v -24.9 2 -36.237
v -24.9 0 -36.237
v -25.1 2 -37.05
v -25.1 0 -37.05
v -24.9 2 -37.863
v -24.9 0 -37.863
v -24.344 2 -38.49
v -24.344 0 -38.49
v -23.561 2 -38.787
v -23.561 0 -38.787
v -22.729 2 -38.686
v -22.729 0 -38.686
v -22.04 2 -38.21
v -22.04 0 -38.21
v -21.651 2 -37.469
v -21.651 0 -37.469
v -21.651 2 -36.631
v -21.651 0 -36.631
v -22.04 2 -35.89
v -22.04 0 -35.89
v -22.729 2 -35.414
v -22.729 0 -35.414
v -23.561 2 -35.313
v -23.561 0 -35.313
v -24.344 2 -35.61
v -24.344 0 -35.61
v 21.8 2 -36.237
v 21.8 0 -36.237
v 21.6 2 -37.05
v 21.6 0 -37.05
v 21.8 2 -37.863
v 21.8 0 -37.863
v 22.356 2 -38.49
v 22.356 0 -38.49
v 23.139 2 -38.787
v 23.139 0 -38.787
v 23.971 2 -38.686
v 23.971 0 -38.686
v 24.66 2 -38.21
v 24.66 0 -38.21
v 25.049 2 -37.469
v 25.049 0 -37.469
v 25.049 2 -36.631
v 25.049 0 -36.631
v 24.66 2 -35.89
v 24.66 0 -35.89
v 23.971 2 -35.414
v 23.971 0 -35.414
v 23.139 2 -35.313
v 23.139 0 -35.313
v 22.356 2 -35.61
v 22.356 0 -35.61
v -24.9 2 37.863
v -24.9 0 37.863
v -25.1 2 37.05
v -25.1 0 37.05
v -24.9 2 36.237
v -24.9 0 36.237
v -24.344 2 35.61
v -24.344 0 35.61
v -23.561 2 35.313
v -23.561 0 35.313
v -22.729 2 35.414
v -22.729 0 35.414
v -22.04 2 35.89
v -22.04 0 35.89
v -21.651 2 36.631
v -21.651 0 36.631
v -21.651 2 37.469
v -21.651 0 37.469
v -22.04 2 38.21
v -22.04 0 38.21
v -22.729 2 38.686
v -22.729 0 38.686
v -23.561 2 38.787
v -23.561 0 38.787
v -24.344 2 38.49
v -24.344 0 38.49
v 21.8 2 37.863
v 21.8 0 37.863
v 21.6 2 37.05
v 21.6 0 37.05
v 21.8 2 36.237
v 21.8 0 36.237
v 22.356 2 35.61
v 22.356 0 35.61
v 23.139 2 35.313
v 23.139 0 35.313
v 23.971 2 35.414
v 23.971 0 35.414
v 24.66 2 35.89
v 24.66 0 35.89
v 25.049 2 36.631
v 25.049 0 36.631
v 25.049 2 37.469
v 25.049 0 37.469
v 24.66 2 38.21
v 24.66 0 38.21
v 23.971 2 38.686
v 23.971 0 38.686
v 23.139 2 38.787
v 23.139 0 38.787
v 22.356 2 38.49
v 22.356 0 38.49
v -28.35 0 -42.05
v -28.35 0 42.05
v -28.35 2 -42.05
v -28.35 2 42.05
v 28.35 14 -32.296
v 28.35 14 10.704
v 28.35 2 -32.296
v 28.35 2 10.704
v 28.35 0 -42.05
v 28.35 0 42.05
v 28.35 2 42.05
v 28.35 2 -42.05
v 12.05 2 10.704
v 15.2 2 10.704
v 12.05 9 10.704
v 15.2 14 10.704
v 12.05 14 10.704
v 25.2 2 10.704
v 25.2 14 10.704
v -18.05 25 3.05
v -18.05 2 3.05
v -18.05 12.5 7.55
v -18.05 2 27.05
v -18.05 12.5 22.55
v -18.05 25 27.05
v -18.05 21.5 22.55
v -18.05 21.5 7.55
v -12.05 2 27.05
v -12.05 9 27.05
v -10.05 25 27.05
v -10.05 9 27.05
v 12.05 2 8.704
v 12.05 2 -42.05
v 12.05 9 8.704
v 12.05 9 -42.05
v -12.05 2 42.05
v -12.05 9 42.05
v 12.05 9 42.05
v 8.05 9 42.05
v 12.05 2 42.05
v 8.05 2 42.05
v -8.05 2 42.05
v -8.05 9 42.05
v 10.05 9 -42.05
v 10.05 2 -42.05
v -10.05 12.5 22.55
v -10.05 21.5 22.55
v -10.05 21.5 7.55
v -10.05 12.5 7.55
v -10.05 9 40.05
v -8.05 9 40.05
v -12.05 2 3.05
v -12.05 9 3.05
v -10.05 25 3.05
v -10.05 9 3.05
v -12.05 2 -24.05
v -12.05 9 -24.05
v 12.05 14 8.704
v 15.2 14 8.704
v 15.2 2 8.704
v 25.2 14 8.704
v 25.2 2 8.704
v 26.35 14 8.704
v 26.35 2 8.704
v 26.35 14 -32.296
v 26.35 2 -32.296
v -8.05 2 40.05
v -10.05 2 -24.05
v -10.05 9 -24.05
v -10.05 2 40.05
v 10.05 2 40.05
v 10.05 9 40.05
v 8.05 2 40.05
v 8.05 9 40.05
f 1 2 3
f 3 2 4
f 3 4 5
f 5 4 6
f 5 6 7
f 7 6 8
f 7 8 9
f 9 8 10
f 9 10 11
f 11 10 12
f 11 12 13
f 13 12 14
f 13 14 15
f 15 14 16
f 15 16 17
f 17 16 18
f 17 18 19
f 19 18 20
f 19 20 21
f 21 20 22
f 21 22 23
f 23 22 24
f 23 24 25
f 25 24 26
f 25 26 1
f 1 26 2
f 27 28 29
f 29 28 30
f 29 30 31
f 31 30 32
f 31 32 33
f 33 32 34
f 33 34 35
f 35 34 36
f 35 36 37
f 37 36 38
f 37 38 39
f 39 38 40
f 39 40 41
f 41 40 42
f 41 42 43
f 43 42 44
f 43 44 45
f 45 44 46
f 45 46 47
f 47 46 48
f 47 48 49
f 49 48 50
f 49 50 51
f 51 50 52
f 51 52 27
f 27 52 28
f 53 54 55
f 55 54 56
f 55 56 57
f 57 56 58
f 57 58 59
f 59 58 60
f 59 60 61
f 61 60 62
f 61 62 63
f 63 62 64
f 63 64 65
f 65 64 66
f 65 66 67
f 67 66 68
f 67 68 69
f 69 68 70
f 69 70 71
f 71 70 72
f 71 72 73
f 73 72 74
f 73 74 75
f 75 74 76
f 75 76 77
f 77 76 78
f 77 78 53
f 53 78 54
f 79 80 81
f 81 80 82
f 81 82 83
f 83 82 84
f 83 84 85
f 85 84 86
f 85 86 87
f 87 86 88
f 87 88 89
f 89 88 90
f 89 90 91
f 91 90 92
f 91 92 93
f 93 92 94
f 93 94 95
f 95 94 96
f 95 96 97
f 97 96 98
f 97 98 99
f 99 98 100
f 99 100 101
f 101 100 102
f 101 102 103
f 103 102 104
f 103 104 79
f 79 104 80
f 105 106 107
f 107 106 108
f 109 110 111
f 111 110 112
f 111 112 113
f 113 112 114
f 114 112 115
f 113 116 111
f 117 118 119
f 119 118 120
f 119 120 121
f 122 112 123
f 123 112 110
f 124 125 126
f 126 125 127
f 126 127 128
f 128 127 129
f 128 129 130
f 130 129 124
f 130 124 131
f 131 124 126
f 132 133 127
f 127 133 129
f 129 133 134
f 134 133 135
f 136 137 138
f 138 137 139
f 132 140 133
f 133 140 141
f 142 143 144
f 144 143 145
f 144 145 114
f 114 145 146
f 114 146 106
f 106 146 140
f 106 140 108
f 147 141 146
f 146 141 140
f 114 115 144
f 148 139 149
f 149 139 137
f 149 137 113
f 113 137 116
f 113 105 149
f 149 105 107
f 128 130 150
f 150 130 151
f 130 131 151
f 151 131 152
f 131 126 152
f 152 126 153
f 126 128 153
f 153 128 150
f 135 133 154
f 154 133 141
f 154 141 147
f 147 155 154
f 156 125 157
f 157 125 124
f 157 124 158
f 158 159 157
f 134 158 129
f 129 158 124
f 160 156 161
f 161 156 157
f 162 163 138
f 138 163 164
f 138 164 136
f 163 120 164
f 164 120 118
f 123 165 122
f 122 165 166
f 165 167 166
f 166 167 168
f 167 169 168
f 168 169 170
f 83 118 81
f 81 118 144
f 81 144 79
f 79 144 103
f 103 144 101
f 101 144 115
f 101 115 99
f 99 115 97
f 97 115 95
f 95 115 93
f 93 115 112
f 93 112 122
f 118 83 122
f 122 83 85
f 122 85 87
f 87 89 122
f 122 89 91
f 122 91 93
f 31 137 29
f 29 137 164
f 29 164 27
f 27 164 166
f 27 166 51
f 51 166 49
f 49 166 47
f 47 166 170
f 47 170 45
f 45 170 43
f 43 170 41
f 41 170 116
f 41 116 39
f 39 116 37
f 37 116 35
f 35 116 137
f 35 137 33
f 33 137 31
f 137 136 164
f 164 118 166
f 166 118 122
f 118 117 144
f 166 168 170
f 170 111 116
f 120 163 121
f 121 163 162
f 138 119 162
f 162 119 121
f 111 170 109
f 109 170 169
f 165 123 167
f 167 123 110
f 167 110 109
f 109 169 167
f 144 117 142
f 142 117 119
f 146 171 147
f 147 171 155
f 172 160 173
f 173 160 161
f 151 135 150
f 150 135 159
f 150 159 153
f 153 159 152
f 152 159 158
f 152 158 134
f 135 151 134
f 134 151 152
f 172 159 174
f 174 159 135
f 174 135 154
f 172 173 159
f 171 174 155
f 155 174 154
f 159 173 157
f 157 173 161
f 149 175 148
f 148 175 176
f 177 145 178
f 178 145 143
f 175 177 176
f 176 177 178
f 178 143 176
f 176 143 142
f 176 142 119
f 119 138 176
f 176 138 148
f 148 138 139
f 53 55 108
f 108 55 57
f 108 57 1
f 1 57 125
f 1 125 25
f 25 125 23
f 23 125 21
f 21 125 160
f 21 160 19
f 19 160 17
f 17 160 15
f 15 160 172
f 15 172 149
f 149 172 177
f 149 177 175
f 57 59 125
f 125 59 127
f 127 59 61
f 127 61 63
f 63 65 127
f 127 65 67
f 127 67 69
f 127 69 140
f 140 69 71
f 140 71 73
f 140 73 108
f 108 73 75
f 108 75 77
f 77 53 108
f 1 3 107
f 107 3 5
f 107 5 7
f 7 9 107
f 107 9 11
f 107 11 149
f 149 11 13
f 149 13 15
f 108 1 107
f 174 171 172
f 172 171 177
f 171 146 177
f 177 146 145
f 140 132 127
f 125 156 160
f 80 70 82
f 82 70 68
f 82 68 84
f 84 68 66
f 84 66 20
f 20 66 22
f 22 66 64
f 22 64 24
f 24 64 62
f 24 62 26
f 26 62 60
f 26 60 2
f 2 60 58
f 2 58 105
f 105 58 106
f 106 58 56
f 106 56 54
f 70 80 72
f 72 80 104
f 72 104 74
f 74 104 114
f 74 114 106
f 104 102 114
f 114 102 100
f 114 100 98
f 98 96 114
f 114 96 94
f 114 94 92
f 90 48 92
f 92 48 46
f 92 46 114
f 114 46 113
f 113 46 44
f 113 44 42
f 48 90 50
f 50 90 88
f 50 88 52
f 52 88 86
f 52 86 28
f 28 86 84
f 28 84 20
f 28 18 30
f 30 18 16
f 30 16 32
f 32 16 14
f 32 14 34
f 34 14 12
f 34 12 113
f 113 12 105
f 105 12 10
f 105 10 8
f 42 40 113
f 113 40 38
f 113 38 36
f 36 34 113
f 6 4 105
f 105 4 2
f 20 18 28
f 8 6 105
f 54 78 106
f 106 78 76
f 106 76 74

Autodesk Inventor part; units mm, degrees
ref_plane "YZ Plane" through (0, 0, 0) normal (1, 0, 0) x (0, 1, 0)
ref_plane "XZ Plane" through (0, 0, 0) normal (0, 1, 0) x (-1, 0, 0)
ref_plane "XY Plane" through (0, 0, 0) normal (0, 0, 1) x (1, 0, 0)
sketch "Boceto1" plane through (0, 0, 0) normal (0, 1, 0) x (-1, 0, 0)
  line L0 (10.05, 40.05) -> (-10.05, 40.05)
  line L1 (-10.05, 40.05) -> (-10.05, -40.05)
  line L2 (-10.05, -40.05) -> (10.05, -40.05)
  line L3 (10.05, -40.05) -> (10.05, 40.05)
  line L4 (10.05, 40.05) -> (-10.05, -40.05) construction
  line L5 (-10.05, 40.05) -> (10.05, -40.05) construction
  line L6 (12.05, 42.05) -> (-12.05, 42.05)
  line L7 (-12.05, 42.05) -> (-12.05, -42.05)
  line L8 (-12.05, -42.05) -> (12.05, -42.05)
  line L9 (12.05, -42.05) -> (12.05, 42.05)
  point P0 (0, 0)
  dimension "d0" = 20.1
  dimension "d1" = 80.1
  dimension "d2" = 2
extrude "Extrusión1" add sketch "Boceto1" along normal blind 2 contours L3 L2 L1 L0 | L9 L8 L7 L6
sketch "Boceto2" plane through (0, 2, 0) normal (0, 1, 0) x (1, 0, 0)
  line L0 (12.05, -42.05) -> (12.05, 42.05) projected
  line L1 (-12.05, -42.05) -> (12.05, -42.05)
  line L2 (12.05, -42.05) -> (12.05, 42.05)
  line L3 (-12.05, 42.05) -> (-12.05, -42.05)
  line L4 (-12.05, -42.05) -> (12.05, 42.05) construction
  line L5 (12.05, -42.05) -> (-12.05, 42.05) construction
  line L6 (-10.05, -40.05) -> (10.05, -40.05)
  line L7 (10.05, -40.05) -> (10.05, 40.15)
  line L8 (-10.05, 40.05) -> (-10.05, -40.05)
  line L9 (-10.05, 40.05) -> (-10.05, 42.05)
  line L10 (10.05, 40.15) -> (10.05, 42.05)
  line L11 (12.05, 42.05) -> (-12.05, 42.05) projected
  line L12 (12.05, 42.05) -> (10.05, 42.05)
  line L13 (-12.05, 42.05) -> (-10.05, 42.05)
  line L14 (-12.05, 42.05) -> (-12.05, -42.05) projected
  line L15 (-12.05, 24.05) -> (-10.05, 24.05)
  line L16 (-12.05, -27.6873) -> (-10.05, -27.6873)
  line L17 (-10.05, -27.6873) -> (-10.05, -12.6873)
  line L18 (-10.05, -12.6873) -> (-12.05, -12.6873)
  line L19 (-12.05, -12.6873) -> (-12.05, -27.6873)
  line L20 (-8.05, -40.05) -> (-8.05, -42.05)
  line L21 (-12.05, -42.05) -> (12.05, -42.05) projected
  line L22 (8.05, -40.05) -> (8.05, -42.05)
  point P0 (0, 0)
  point P1 (8.05, -41.05)
  point P2 (-12.05, 24.05)
  dimension "d5" = 2
  dimension "d8" = 18
  dimension "d9" = 15
  dimension "d10" = 12.3627
  dimension "d11" = 2
  dimension "d12" = 2
  dimension "d13" = 4
  dimension "d14" = 4
extrude "Extrusión2" add sketch "Boceto2" along normal blind 7 contours L1 L22 L6 L7 L10 L11 L0 | L1 L3 L16 L8 L6 L20 | L3 L18 L8 L16 | L8 L18 L3 L15
sketch "Boceto5" plane through (0, 0, 0) normal (0, 1, 0) x (-1, 0, 0)
  line L0 (-12.05, -30.296) -> (-26.35, -30.296)
  line L1 (-26.35, -30.296) -> (-26.35, 8.704)
  line L2 (-26.35, 8.704) -> (-12.05, 8.704)
  line L3 (-12.05, 8.704) -> (-12.05, -30.296)
  line L4 (-12.05, -30.296) -> (-26.35, 8.704) construction
  line L5 (-26.35, -30.296) -> (-12.05, 8.704) construction
  line L6 (-12.05, 42.05) -> (-12.05, -42.05) projected
  line L7 (-28.35, -32.296) -> (-10.05, -32.296)
  line L8 (-10.05, -32.296) -> (-10.05, 10.704)
  line L9 (-10.05, 10.704) -> (-28.35, 10.704)
  line L10 (-28.35, 10.704) -> (-28.35, -32.296)
  point P0 (0, 0)
  point P1 (-19.2, -10.796)
  point P2 (-12.05, 10.704)
  point P3 (-12.05, -32.296)
  dimension "d25" = 14.3
  dimension "d26" = 39
  dimension "d27" = 0
  dimension "d28" = 2
extrude "Extrusión5" add sketch "Boceto5" along normal blind 14 contours L6 L7 L10 L9 L2 L1 L0 | L0 L1 L2 L3
sketch "Boceto6" plane through (0, 14, 0) normal (0, 1, 0) x (1, 0, 0)
  line L0 (28.35, 32.296) -> (12.05, 32.296) projected
  line L1 (20.2, 32.296) -> (20.2, 4.5557)
  line L2 (14.05, 30.296) -> (26.35, 30.296)
  line L3 (26.35, 30.296) -> (26.35, -8.704)
  line L4 (26.35, -8.704) -> (14.05, -8.704)
  line L5 (14.05, 30.296) -> (26.35, -8.704) construction
  line L6 (26.35, 30.296) -> (14.05, -8.704) construction
  line L7 (28.35, -10.704) -> (28.35, 32.296) projected
  line L8 (12.05, -10.704) -> (28.35, -10.704) projected
  line L9 (14.05, -8.704) -> (12.05, -8.704)
  line L10 (12.05, -8.704) -> (12.05, 30.296)
  line L11 (12.05, 32.296) -> (12.05, -10.704) projected
  line L12 (14.05, 30.296) -> (12.05, 30.296)
  line L13 (28.35, -10.704) -> (28.35, 32.296) projected
  line L14 (28.35, -8.704) -> (28.35, -10.704)
  line L15 (12.05, -10.704) -> (28.35, -10.704) projected
  line L16 (15.2, -8.704) -> (25.2, -8.704)
  line L17 (25.2, -8.704) -> (25.2, -10.704)
  line L18 (25.2, -10.704) -> (15.2, -10.704)
  line L19 (15.2, -10.704) -> (15.2, -8.704)
  line L20 (15.2, -8.704) -> (25.2, -10.704) construction
  line L21 (25.2, -8.704) -> (15.2, -10.704) construction
  line L22 (26.35, 30.296) -> (26.35, 32.296)
  point P0 (0, 0)
  point P1 (20.2, 10.796)
  point P2 (20.2, -8.704)
  point P3 (20.2, -9.704)
  point P4 (15.2, -8.704)
  point P5 (15.2, -10.704)
  point P6 (25.2, -10.704)
  dimension "d31" = 2
  dimension "d32" = 2
  dimension "d33" = 2
  dimension "d34" = 10
extrude "Extrusión6" cut sketch "Boceto6" against normal blind 12 contours L22 L2 L1 L0 | L1 L2 L12 L11 L0 | L3 L4 L9 L10 L12 L2 | L8 L19 L4 L17
sketch "Boceto8" plane through (0, 0, 0) normal (0, 1, 0) x (-1, 0, 0)
  line L0 (12.05, 27.05) -> (18.05, 27.05)
  line L1 (18.05, 27.05) -> (18.05, 3.05)
  line L2 (18.05, 3.05) -> (12.05, 3.05)
  line L3 (12.05, 3.05) -> (12.05, 27.05)
  line L4 (12.05, -24.05) -> (12.05, 42.05) projected
  line L5 (8.05, 42.05) -> (-8.05, 42.05) projected
  point P0 (0, 0)
  dimension "d44" = 6
  dimension "d45" = 24
  dimension "d46" = 0
  dimension "d47" = 15
extrude "Extrusión8" add sketch "Boceto8" along normal blind 25
sketch "Boceto10" plane through (0, 9, 0) normal (0, 1, 0) x (1, 0, 0)
  line L0 (-12.05, -3.05) -> (-18.05, -3.05) projected
  line L1 (-10.05, -40.05) -> (-10.05, 24.05) projected
  line L2 (-12.05, -3.05) -> (-10.05, -3.05)
  line L3 (-10.05, -3.05) -> (-10.05, -27.05)
  line L4 (-10.05, -27.05) -> (-12.05, -27.05)
  line L5 (-12.05, -27.05) -> (-12.05, -3.05)
  line L6 (-18.05, -27.05) -> (-12.05, -27.05) projected
  point P0 (0, 0)
  point P1 (-10.05, -3.05)
  point P2 (-11.05, -27.05)
  dimension "d65" = 0
extrude "Extrusión10" add sketch "Boceto10" along normal blind 16
sketch "Boceto11" plane through (-18.05, 0, 3.05) normal (-1, 0, 0) x (0, 0, 1)
  line L0 (4.5, 21.5) -> (19.5, 21.5)
  line L1 (19.5, 21.5) -> (19.5, 12.5)
  line L2 (19.5, 12.5) -> (4.5, 12.5)
  line L3 (4.5, 12.5) -> (4.5, 21.5)
  line L4 (4.5, 21.5) -> (19.5, 12.5) construction
  line L5 (19.5, 21.5) -> (4.5, 12.5) construction
  line L6 (0, 25) -> (24, 25) projected
  line L7 (-27.1, 9) -> (0, 9) projected
  line L8 (24, 25) -> (0, 25) projected
  line L9 (12, 25) -> (12, 17)
  point P0 (-3.05, 0)
  dimension "d59" = 15
  dimension "d60" = 9
  dimension "d61" = 3.5
  dimension "d62" = 3.5
  dimension "d66" = 0
extrude "Extrusión11" cut sketch "Boceto11" against normal blind 8
sketch "Boceto13" plane through (0, 0, 0) normal (0, 1, 0) x (-1, 0, 0)
  line L0 (28.35, -42.05) -> (-28.35, -42.05)
  line L1 (-28.35, -42.05) -> (-28.35, 42.05)
  line L2 (-28.35, 42.05) -> (28.35, 42.05)
  line L3 (28.35, 42.05) -> (28.35, -42.05)
  line L4 (28.35, -42.05) -> (-28.35, 42.05) construction
  line L5 (-28.35, -42.05) -> (28.35, 42.05) construction
  line L6 (-28.35, 10.704) -> (-28.35, -32.296) projected
  line L7 (-8.05, 42.05) -> (-12.05, 42.05) projected
  circle A0 centre (23.35, -37.05) radius 1.75
  line L8 (-12.05, -42.05) -> (12.05, -42.05) projected
  line L9 (0, -42.05) -> (0, -48.6371)
  line L10 (28.35, 0) -> (35.954, 0)
  circle A1 centre (-23.35, -37.05) radius 1.75
  circle A2 centre (23.35, 37.05) radius 1.75
  circle A3 centre (-23.35, 37.05) radius 1.75
  point P0 (0, 0)
  dimension "d67" = 0
  dimension "d68" = 0
  dimension "d72" = 3.5
  dimension "d73" = 5
  dimension "d74" = 5
extrude "Extrusión12" add sketch "Boceto13" along normal blind 2
properties part number "light_indicator"
